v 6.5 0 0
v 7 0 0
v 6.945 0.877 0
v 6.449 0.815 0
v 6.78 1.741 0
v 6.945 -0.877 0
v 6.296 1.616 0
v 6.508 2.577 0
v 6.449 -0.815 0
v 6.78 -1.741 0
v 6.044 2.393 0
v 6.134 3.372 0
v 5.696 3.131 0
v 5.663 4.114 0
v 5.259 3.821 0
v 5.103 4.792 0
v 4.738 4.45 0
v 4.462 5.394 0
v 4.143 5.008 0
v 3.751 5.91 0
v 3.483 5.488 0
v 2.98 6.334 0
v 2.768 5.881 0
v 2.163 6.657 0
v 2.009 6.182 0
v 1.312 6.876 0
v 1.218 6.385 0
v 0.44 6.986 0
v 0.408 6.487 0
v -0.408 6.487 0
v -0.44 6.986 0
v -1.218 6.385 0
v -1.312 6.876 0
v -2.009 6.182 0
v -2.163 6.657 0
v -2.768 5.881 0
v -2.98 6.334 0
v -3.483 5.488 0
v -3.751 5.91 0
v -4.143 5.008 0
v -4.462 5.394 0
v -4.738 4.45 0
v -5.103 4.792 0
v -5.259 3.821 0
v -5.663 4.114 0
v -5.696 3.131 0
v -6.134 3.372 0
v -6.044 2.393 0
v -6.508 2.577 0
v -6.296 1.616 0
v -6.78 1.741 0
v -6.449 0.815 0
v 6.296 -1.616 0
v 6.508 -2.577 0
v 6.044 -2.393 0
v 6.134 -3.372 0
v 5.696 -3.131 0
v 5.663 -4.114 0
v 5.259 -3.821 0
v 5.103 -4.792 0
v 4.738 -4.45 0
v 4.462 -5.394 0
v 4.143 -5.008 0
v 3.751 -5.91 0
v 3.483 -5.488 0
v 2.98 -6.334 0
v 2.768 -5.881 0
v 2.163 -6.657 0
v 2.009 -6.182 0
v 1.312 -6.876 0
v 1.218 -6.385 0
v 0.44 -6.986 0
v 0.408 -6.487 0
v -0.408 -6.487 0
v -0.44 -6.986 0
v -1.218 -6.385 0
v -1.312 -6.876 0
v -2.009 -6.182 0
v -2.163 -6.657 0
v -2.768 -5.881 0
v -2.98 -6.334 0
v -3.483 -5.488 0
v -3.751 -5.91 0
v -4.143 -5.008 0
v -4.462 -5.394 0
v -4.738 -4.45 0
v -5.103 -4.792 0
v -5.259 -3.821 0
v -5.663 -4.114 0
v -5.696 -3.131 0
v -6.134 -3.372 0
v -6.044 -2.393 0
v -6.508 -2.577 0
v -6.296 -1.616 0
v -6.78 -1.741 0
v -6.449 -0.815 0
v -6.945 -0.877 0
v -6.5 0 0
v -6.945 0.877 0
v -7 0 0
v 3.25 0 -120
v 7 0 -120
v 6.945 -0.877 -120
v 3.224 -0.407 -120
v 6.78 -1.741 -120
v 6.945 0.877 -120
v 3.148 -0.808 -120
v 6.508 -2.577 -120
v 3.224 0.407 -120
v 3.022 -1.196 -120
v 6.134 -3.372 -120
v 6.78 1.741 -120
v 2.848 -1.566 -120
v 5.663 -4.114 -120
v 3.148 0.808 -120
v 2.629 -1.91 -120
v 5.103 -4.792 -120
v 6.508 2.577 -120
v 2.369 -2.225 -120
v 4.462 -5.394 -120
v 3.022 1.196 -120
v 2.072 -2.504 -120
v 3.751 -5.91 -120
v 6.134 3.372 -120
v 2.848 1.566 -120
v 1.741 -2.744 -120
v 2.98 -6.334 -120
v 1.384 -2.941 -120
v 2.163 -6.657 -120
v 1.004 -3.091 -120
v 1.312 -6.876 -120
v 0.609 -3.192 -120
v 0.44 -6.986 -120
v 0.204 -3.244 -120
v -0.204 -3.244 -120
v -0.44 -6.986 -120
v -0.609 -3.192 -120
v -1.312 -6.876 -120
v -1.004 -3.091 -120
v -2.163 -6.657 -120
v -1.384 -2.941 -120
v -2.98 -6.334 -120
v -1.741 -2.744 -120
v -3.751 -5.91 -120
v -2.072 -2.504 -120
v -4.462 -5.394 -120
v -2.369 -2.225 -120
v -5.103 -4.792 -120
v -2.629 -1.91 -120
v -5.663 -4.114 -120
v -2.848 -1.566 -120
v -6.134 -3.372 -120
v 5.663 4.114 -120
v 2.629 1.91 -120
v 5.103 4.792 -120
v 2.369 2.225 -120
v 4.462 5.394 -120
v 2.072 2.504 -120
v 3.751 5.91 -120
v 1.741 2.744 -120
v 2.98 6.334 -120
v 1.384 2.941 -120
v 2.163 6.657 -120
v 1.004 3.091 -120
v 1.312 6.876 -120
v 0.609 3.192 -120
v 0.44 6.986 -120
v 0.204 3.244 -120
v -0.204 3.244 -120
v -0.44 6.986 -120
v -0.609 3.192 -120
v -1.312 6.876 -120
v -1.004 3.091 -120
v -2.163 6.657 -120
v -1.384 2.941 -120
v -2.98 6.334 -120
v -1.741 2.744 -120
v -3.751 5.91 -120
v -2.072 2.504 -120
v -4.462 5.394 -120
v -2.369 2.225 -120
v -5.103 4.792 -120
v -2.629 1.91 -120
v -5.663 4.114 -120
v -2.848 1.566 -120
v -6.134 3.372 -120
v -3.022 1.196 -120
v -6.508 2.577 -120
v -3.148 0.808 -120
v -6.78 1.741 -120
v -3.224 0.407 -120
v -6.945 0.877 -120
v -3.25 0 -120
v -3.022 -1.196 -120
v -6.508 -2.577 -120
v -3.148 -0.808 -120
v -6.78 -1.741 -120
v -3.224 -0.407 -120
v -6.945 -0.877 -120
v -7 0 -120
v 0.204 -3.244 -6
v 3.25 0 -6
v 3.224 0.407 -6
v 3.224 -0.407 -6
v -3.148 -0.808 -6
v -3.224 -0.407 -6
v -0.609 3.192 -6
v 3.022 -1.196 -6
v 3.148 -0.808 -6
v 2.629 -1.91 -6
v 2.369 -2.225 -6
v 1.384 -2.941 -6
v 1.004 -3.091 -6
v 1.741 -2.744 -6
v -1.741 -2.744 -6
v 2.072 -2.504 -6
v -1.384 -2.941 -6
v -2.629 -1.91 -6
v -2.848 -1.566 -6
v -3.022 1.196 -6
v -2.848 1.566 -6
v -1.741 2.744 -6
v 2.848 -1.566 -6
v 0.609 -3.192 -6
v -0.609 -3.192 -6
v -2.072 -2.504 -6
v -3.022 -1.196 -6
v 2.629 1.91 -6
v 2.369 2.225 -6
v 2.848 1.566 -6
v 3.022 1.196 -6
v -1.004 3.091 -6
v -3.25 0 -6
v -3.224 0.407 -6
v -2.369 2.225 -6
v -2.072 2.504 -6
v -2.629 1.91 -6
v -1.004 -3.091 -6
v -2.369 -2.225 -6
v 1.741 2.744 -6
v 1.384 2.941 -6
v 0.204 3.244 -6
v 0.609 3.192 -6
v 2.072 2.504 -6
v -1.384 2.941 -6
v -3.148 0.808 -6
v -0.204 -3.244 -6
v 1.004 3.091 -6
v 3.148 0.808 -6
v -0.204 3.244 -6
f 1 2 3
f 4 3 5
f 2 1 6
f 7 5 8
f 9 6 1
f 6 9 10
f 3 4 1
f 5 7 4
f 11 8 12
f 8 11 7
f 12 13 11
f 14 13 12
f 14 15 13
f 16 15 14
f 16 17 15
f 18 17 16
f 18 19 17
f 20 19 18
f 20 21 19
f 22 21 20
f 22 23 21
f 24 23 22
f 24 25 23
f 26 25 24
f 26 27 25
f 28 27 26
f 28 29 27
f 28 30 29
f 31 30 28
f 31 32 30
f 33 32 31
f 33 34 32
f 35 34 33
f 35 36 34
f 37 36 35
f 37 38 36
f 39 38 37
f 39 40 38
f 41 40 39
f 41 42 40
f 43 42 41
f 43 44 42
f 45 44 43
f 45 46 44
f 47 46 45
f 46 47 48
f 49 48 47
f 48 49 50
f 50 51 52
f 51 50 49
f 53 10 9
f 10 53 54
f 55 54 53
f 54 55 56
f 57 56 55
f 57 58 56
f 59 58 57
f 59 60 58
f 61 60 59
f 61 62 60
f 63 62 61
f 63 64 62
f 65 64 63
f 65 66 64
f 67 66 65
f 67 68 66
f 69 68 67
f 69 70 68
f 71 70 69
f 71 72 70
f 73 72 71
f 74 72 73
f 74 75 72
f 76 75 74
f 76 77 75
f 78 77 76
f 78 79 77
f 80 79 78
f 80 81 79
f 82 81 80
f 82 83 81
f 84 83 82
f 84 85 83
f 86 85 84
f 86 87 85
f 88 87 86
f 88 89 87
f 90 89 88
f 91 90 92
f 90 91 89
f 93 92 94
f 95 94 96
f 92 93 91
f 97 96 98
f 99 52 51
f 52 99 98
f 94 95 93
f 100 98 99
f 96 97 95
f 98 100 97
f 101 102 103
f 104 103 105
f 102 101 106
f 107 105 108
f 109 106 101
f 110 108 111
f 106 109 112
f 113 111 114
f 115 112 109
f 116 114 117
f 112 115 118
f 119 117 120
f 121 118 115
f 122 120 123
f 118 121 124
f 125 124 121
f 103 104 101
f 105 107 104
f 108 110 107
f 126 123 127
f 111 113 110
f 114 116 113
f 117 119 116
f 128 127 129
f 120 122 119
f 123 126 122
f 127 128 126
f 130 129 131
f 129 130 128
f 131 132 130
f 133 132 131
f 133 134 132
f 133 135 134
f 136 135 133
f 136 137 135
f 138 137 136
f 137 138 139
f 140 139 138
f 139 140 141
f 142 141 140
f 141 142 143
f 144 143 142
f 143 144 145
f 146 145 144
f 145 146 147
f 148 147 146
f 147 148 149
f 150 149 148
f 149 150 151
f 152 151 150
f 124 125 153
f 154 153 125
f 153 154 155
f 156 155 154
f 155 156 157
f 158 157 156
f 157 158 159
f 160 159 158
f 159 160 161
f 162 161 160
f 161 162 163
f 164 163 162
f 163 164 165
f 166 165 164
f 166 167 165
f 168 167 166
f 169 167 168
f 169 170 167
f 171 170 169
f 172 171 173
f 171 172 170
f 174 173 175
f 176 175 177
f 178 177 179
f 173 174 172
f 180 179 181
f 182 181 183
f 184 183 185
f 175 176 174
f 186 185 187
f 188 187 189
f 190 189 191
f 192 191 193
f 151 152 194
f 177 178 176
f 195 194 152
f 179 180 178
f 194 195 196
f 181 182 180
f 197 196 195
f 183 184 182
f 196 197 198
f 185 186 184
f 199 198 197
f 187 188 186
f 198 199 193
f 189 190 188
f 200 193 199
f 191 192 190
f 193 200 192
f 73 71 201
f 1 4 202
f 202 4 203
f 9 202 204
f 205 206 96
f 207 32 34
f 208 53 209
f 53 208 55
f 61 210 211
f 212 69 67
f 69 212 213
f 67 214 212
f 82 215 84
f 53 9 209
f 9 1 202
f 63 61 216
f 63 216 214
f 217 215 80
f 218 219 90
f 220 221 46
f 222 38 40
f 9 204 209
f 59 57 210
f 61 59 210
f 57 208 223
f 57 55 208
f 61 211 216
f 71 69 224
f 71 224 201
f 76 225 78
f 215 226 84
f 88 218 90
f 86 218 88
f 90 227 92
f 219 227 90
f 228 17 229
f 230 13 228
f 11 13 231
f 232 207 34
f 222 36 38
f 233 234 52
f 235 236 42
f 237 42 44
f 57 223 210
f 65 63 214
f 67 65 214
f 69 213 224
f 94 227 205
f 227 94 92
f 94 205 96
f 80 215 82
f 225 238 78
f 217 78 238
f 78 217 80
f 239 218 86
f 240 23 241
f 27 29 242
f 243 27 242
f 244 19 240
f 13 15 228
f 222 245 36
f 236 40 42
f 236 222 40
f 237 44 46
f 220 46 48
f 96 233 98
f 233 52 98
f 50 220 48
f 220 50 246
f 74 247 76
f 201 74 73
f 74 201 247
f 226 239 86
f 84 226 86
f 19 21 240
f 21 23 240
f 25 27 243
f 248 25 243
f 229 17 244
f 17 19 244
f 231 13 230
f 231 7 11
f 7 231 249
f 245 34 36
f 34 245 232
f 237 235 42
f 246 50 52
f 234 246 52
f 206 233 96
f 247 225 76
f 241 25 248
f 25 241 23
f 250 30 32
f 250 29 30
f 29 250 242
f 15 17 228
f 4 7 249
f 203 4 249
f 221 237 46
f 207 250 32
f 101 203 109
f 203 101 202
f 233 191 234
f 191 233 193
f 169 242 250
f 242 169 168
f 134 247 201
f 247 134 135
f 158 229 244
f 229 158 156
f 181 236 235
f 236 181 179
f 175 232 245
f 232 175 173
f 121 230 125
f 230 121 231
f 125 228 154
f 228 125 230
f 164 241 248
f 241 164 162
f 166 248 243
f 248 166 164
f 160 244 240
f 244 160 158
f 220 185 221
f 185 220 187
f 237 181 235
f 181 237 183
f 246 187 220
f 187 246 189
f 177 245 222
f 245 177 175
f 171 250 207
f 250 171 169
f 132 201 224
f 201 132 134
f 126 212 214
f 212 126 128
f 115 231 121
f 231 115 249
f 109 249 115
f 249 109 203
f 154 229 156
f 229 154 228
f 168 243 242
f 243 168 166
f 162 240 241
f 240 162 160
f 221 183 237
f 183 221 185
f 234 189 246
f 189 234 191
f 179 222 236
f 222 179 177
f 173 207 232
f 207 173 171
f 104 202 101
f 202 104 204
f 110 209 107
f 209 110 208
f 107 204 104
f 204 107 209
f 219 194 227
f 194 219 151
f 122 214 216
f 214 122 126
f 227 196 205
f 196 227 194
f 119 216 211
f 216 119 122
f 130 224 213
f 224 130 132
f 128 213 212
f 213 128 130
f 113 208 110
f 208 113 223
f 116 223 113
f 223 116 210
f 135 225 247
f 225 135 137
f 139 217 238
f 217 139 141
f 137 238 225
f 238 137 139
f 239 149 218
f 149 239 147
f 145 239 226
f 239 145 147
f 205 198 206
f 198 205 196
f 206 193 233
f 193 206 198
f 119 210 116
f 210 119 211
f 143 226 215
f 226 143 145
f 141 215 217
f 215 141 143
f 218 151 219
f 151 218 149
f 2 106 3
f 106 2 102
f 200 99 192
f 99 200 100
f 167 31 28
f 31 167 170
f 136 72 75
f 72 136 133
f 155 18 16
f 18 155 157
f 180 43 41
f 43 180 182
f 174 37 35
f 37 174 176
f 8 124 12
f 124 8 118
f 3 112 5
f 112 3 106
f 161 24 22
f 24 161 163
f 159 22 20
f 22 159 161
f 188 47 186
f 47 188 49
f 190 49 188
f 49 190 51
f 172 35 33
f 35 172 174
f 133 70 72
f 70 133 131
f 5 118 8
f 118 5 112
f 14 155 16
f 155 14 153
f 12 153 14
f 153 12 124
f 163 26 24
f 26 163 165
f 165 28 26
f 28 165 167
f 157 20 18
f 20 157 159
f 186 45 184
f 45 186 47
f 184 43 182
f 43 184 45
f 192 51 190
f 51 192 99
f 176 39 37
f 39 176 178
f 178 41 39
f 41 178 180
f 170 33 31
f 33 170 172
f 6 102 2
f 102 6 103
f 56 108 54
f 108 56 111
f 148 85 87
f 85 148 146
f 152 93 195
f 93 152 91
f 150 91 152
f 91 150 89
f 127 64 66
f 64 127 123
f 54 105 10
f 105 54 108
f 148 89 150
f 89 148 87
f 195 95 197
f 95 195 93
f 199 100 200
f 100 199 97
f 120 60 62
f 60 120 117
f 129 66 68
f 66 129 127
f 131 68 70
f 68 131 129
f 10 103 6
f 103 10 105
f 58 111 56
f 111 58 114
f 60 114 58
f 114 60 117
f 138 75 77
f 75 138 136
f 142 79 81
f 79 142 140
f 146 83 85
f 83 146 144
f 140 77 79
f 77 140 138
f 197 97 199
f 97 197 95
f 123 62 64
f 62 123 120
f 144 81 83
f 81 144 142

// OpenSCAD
$fn = 50;


difference() {
	union() {
		translate(v = [0, 0, -120.0000000000]) {
			cylinder(h = 120, r = 7.0000000000);
		}
		cylinder(h = 0, r = 13.0000000000);
	}
	union() {
		translate(v = [0, 0, 0]) {
			rotate(a = [0, 0, 0]) {
				difference() {
					union() {
						#translate(v = [0, 0, -120.0000000000]) {
							cylinder(h = 120, r = 2.2500000000);
						}
						#translate(v = [0, 0, -6]) {
							cylinder(h = 6, r1 = 3.2500000000, r2 = 6.5000000000);
						}
						#translate(v = [0, 0, -120.0000000000]) {
							cylinder(h = 120, r = 3.2500000000);
						}
						#translate(v = [0, 0, -120.0000000000]) {
							cylinder(h = 120, r = 2.2500000000);
						}
					}
					union();
				}
			}
		}
	}
}
